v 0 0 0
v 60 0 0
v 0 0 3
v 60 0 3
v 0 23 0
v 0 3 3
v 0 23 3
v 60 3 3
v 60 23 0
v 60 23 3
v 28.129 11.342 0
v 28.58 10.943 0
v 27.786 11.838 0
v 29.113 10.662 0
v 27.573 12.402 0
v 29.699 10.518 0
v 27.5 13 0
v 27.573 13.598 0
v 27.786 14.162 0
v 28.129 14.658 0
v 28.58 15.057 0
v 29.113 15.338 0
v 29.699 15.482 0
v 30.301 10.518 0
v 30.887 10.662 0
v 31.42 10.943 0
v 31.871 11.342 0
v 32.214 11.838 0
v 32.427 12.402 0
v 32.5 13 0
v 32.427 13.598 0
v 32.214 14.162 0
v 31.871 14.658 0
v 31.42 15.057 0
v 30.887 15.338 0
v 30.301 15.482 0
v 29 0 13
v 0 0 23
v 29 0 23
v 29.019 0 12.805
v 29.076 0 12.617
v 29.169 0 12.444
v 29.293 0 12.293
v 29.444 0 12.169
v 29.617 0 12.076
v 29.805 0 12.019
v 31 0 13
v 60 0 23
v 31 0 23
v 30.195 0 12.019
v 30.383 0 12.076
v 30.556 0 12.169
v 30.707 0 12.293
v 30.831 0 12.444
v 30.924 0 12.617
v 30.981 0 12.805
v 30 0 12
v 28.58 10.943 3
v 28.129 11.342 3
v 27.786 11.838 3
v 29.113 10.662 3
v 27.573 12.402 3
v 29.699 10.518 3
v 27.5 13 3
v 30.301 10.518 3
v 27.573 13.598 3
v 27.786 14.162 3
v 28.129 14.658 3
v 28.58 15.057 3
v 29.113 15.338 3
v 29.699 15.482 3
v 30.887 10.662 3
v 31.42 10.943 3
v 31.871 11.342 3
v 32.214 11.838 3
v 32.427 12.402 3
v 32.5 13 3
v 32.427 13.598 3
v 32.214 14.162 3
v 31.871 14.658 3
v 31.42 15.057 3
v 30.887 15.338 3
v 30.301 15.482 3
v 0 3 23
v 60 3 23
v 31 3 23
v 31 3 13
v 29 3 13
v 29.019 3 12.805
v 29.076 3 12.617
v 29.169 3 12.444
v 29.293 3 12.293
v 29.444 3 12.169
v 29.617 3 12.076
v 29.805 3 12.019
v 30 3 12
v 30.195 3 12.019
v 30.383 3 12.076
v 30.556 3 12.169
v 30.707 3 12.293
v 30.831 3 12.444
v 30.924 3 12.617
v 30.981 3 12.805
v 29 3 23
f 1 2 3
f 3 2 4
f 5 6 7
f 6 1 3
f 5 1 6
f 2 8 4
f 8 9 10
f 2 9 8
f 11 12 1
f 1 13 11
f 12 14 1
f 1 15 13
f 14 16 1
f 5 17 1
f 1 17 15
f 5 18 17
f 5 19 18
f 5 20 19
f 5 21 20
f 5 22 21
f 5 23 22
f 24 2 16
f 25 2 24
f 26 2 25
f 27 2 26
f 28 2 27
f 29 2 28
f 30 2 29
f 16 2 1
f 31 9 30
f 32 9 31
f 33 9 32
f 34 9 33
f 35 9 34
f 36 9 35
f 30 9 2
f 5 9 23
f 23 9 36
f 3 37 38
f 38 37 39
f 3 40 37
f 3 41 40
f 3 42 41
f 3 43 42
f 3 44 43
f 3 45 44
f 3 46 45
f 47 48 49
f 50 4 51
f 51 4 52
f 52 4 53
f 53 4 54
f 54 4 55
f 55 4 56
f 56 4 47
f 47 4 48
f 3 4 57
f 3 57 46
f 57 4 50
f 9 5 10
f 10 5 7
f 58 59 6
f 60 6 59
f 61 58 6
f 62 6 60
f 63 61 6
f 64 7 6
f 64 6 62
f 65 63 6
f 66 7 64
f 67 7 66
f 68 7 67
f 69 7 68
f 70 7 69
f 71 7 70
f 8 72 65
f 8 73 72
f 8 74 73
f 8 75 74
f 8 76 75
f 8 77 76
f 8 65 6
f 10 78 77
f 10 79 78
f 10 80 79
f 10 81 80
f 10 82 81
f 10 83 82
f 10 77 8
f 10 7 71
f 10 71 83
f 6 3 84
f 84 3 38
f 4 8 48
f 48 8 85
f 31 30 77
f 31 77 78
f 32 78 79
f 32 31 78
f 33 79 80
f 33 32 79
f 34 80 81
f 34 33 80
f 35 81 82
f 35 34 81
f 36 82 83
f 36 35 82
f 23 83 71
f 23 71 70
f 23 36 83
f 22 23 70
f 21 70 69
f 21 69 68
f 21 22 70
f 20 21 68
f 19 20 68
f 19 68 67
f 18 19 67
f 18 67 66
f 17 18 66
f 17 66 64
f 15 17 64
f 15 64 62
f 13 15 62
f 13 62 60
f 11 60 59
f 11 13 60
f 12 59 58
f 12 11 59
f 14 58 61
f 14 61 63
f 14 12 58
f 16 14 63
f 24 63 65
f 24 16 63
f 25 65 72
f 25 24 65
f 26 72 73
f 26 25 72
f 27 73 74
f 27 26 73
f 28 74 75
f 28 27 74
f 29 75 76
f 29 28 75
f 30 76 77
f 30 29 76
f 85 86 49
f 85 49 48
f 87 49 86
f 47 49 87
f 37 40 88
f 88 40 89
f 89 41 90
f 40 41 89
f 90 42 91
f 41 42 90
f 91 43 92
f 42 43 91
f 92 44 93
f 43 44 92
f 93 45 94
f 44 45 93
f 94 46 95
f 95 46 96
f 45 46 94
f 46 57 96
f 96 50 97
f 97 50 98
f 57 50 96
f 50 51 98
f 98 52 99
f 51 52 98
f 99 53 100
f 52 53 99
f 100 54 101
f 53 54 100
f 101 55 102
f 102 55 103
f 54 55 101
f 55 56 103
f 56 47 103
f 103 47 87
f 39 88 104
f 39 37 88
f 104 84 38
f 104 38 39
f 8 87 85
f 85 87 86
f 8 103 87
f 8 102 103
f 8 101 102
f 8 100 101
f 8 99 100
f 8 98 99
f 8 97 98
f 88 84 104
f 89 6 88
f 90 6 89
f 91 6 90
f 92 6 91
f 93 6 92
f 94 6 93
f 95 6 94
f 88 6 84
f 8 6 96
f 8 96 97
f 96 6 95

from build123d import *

# Parameters (mm, degrees)
EXTRUDE002_DEPTH = 3
SKETCH001_W      = 60
SKETCH001_H      = 3
EXTRUDE001_DEPTH = 20
SKETCH_W         = 60
SKETCH_H         = 23
SKETCH_R         = 2.5
EXTRUDE_DEPTH    = 3


with BuildPart() as extrude002:
    # Face002 → Extrude002 (new body)
    with BuildSketch(Plane(origin=(30, 0, 17.604991), x_dir=(1, 0, 0), z_dir=(0, 1, 0))):
        with BuildLine():
            Line((-1, -5.395009), (1, -5.395009))
            Line((1, -5.395009), (1, 4.604991))
            ThreePointArc((1, 4.604991), (0, 5.604991), (-1, 4.604991))
            Line((-1, 4.604991), (-1, -5.395009))
        make_face()
    extrude(amount=EXTRUDE002_DEPTH)


with BuildPart() as cut:
    # Sketch001 (on Face7 of Extrude) → Extrude001 (new body)
    with BuildSketch(Plane.XY.offset(3)):
        with Locations((30, 1.5)):
            Rectangle(SKETCH001_W, SKETCH001_H)
    extrude(amount=EXTRUDE001_DEPTH)

    # Cut: cut Extrude002
    add(extrude002.part, mode=Mode.SUBTRACT)


with BuildPart() as fusion:
    # Sketch → Extrude (new body)
    with BuildSketch(Plane.XY):
        with Locations((30, 11.5)):
            Rectangle(SKETCH_W, SKETCH_H)
        with Locations((30, 13)):
            Circle(SKETCH_R, mode=Mode.SUBTRACT)
    extrude(amount=EXTRUDE_DEPTH)

    # Fusion: union Cut
    add(cut.part)


solid = fusion.part
